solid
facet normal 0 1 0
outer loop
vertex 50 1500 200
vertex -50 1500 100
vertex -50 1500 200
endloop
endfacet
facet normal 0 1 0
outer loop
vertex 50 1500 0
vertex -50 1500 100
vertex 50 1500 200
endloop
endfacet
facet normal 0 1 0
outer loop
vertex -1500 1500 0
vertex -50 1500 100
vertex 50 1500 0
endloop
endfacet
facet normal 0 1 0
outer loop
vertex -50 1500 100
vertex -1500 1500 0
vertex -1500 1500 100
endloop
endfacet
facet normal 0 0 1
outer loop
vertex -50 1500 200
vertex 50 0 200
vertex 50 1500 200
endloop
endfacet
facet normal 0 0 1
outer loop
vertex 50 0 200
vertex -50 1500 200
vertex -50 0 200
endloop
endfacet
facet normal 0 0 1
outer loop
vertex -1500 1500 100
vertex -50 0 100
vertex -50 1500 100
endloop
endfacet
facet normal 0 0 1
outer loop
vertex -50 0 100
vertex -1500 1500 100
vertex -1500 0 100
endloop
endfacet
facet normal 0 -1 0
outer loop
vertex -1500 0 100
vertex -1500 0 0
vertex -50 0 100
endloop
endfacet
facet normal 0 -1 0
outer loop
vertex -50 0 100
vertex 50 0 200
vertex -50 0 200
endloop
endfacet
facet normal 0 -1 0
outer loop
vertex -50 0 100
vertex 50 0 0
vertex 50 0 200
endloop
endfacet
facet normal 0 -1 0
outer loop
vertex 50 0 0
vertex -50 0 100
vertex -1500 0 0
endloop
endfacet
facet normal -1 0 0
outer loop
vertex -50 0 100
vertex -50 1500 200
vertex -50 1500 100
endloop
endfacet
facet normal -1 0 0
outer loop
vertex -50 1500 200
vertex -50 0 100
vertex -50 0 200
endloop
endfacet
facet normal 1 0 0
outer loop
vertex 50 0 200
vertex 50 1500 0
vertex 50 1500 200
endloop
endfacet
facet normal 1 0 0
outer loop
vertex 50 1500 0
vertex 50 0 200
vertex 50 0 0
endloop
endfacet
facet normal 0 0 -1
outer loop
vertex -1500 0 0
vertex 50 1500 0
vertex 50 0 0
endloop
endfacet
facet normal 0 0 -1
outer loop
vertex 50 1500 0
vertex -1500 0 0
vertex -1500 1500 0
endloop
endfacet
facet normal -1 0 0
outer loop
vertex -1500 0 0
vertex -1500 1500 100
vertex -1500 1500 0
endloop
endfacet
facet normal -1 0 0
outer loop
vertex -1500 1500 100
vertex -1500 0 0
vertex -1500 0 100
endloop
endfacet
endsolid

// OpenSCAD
// file: templates/t_flat-roof.scad
include <./basic-dims.scad>

wall_offset = section_thickness/2;

module flat_roof_straight() {
    rotate([0, 0, 90])
    translate([0, -wall_offset, 0])
    union() {
        translate([0, 0, section_thickness])
        cube([section_width, section_thickness, section_thickness]);
        cube([section_width, section_width + wall_offset, section_thickness]);
    }
}

module flat_roof_corner() {
    rotate([0, 0, 90])
    translate([-wall_offset, -wall_offset, 0])
    union() {
        translate([0, 0, section_thickness]) {
            cube([section_width + wall_offset, section_thickness, section_thickness]);
            cube([section_thickness, section_width + wall_offset, section_thickness]);
        }
        cube([
                section_width + wall_offset,
                section_width + wall_offset,
                section_thickness
            ]);
    }
}

module flat_roof_diagonal() {
    corrected_width = section_width + wall_offset;

    rotate([0, 0, 180])
    translate([-wall_offset, -wall_offset - section_width, 0])
    union() {
        linear_extrude(section_thickness)
        polygon([
            [0, corrected_width],
            [corrected_width, corrected_width],
            [corrected_width, 0]
        ]);

        translate([0, 0, section_thickness])
        linear_extrude(section_thickness)
        polygon([
            [0, corrected_width],
            [section_thickness, corrected_width],
            [corrected_width, section_thickness],
            [corrected_width, 0]
        ]);
    }
}
// file: templates/basic-dims.scad
unit = 1000;

section_width = unit * 1.5;
section_height = unit * 2.5;
section_thickness = unit * 0.1;

rt = sqrt(2);

//  -- Notes --
//  Z is UP
//  X is FORWARD (out of the screen)
// main file
include <./templates/basic-dims.scad>
include <./templates/t_flat-roof.scad>

flat_roof_straight();
